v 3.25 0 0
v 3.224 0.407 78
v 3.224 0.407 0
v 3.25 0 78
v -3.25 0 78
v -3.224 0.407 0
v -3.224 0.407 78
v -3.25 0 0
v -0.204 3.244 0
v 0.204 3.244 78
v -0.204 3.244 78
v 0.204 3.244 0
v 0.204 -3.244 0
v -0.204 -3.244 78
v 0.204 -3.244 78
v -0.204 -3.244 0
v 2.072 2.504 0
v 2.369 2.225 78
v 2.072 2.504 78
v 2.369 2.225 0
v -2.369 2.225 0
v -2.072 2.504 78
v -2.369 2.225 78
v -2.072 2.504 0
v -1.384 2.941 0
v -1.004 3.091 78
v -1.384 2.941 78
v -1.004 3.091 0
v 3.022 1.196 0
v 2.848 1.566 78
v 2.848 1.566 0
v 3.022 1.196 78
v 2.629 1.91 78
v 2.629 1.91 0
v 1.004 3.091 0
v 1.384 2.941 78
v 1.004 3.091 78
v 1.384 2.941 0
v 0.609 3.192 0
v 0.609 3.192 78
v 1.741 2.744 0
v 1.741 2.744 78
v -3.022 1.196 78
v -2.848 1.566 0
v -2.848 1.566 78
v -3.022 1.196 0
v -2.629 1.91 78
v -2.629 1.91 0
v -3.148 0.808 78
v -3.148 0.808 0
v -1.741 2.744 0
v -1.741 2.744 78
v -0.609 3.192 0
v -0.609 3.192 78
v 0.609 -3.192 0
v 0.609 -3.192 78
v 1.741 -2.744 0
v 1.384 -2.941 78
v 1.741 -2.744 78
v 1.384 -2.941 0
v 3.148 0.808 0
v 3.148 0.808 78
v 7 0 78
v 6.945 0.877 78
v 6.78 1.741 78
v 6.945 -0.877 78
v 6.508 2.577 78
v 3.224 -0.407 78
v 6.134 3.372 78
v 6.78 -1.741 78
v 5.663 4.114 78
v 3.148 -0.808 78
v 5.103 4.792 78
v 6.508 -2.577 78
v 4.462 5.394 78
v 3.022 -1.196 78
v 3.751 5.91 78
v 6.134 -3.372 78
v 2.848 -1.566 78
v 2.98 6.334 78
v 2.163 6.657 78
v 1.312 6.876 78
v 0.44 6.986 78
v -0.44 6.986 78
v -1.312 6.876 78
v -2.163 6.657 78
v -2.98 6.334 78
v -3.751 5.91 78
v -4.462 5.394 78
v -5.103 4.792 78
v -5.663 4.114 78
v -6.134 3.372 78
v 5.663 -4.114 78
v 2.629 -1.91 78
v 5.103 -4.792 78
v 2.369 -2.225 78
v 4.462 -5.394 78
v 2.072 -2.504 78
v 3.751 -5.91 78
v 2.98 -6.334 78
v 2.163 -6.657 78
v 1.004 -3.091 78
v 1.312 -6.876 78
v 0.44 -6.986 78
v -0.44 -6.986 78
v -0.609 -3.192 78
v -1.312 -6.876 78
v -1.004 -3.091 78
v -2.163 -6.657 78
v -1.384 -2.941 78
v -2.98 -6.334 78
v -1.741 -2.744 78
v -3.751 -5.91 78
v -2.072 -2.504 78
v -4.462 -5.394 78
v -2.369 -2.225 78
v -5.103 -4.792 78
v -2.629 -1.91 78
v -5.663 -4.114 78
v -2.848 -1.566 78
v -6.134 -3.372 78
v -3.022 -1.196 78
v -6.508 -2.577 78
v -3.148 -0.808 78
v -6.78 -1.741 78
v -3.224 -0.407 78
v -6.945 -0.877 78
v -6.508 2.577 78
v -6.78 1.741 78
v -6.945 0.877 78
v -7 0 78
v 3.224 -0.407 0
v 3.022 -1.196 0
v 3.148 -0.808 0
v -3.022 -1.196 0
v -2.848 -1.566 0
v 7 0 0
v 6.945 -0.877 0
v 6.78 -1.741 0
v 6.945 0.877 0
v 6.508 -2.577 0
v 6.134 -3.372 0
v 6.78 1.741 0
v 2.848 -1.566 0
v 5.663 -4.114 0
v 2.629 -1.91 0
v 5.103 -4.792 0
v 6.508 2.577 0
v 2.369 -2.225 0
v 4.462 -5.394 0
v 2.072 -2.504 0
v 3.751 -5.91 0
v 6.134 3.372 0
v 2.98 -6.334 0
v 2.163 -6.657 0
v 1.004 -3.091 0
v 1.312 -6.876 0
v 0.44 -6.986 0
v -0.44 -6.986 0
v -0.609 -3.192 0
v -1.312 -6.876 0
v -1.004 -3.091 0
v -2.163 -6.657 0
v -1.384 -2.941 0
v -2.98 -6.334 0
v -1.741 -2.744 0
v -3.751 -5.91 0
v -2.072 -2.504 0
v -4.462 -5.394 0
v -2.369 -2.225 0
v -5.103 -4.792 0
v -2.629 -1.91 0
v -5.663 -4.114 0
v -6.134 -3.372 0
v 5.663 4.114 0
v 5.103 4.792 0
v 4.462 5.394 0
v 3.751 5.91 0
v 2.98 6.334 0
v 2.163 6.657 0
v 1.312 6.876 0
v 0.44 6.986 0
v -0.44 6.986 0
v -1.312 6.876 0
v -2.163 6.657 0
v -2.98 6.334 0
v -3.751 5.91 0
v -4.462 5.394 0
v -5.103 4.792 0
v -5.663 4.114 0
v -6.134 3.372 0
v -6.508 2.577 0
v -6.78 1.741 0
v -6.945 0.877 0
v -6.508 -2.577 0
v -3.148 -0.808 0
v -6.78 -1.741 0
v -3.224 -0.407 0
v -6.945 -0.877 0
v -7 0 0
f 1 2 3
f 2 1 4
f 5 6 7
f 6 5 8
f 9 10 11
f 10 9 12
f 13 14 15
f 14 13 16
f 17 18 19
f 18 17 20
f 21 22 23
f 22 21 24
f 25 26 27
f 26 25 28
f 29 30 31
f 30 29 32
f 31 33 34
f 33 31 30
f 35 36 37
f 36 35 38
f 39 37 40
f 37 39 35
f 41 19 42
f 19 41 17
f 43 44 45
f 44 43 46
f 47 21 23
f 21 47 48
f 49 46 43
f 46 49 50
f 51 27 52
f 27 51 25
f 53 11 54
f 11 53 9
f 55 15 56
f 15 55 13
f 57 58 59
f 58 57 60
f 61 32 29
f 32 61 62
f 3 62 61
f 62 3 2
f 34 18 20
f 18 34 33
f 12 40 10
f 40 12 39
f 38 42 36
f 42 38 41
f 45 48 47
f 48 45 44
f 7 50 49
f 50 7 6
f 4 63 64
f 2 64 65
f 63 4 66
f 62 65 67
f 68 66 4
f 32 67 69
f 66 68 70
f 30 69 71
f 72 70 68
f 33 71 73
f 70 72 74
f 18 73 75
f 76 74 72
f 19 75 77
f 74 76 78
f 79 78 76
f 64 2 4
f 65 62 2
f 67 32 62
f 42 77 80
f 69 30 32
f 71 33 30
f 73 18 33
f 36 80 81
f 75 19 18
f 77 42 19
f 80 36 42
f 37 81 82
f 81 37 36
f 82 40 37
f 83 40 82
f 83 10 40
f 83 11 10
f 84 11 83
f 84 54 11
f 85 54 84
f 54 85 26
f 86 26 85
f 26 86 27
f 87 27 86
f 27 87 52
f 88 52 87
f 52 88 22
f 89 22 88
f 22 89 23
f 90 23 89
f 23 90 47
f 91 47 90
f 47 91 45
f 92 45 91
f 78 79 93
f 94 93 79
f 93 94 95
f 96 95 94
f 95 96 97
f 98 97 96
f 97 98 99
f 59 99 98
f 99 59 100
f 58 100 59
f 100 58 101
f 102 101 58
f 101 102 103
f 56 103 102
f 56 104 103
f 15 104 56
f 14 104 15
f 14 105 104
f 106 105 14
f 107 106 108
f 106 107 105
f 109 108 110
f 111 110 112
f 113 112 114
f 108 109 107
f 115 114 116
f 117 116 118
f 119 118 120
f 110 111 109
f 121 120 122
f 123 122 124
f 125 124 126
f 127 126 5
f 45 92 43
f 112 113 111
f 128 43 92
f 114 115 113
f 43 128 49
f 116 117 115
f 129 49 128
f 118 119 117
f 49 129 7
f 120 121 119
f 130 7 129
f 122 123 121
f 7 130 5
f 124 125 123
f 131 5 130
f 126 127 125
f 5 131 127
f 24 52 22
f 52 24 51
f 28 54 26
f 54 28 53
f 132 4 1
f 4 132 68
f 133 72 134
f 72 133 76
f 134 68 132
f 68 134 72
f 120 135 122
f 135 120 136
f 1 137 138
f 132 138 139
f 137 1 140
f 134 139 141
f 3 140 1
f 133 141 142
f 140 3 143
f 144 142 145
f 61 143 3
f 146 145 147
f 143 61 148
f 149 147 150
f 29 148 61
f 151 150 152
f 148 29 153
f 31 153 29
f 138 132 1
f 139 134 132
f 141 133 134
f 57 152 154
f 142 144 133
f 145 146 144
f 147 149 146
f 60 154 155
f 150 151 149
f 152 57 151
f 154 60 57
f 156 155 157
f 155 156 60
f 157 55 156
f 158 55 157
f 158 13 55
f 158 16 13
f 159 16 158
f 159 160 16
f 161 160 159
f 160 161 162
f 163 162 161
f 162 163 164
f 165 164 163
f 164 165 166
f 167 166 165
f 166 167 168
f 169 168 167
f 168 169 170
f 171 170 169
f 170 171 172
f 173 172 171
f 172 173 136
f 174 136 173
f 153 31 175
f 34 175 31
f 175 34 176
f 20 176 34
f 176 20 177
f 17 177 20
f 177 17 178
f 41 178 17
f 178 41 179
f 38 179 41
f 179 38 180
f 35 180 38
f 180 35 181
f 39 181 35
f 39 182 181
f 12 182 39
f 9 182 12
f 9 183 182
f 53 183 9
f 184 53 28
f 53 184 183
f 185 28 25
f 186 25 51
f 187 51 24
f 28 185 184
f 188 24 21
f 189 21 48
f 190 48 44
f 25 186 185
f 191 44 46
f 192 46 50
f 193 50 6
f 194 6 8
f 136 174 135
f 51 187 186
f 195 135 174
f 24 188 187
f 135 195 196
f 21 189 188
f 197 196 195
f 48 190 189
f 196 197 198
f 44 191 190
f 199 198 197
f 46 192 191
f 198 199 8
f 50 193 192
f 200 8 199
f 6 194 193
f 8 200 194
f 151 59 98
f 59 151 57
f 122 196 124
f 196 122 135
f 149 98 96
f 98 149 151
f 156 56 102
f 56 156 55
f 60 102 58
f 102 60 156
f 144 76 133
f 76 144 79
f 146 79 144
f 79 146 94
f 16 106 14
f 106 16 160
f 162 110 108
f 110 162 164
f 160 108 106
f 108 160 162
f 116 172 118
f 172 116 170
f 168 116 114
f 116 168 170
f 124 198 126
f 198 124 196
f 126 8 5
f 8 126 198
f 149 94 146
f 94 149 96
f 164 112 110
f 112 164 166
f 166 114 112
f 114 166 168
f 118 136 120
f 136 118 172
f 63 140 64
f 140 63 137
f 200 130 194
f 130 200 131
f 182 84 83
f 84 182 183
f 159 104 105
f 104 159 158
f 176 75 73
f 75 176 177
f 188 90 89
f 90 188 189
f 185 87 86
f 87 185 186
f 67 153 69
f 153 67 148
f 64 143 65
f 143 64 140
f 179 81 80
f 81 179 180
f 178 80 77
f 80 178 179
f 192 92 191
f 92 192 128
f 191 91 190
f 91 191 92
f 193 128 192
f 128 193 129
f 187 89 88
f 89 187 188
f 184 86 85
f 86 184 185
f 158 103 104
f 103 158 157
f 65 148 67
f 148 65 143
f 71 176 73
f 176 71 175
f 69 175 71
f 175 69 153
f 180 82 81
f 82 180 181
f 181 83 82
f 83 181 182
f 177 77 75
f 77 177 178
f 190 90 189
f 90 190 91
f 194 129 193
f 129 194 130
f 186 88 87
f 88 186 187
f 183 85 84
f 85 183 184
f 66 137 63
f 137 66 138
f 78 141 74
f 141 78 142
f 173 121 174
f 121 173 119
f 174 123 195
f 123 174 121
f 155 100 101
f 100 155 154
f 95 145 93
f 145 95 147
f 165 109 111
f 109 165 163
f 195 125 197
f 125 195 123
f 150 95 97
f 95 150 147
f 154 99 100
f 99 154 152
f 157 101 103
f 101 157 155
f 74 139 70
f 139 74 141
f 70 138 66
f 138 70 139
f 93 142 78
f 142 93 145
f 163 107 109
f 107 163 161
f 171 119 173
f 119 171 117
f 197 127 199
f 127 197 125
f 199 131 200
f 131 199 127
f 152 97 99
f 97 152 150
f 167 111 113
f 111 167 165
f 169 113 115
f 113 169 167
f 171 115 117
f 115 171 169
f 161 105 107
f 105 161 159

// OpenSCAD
$fn = 50;


difference() {
	union() {
		cylinder(h = 78, r = 7.0000000000);
	}
	union() {
		translate(v = [0, 0, -100]) {
			cylinder(h = 200, r = 3.2500000000);
		}
	}
}
